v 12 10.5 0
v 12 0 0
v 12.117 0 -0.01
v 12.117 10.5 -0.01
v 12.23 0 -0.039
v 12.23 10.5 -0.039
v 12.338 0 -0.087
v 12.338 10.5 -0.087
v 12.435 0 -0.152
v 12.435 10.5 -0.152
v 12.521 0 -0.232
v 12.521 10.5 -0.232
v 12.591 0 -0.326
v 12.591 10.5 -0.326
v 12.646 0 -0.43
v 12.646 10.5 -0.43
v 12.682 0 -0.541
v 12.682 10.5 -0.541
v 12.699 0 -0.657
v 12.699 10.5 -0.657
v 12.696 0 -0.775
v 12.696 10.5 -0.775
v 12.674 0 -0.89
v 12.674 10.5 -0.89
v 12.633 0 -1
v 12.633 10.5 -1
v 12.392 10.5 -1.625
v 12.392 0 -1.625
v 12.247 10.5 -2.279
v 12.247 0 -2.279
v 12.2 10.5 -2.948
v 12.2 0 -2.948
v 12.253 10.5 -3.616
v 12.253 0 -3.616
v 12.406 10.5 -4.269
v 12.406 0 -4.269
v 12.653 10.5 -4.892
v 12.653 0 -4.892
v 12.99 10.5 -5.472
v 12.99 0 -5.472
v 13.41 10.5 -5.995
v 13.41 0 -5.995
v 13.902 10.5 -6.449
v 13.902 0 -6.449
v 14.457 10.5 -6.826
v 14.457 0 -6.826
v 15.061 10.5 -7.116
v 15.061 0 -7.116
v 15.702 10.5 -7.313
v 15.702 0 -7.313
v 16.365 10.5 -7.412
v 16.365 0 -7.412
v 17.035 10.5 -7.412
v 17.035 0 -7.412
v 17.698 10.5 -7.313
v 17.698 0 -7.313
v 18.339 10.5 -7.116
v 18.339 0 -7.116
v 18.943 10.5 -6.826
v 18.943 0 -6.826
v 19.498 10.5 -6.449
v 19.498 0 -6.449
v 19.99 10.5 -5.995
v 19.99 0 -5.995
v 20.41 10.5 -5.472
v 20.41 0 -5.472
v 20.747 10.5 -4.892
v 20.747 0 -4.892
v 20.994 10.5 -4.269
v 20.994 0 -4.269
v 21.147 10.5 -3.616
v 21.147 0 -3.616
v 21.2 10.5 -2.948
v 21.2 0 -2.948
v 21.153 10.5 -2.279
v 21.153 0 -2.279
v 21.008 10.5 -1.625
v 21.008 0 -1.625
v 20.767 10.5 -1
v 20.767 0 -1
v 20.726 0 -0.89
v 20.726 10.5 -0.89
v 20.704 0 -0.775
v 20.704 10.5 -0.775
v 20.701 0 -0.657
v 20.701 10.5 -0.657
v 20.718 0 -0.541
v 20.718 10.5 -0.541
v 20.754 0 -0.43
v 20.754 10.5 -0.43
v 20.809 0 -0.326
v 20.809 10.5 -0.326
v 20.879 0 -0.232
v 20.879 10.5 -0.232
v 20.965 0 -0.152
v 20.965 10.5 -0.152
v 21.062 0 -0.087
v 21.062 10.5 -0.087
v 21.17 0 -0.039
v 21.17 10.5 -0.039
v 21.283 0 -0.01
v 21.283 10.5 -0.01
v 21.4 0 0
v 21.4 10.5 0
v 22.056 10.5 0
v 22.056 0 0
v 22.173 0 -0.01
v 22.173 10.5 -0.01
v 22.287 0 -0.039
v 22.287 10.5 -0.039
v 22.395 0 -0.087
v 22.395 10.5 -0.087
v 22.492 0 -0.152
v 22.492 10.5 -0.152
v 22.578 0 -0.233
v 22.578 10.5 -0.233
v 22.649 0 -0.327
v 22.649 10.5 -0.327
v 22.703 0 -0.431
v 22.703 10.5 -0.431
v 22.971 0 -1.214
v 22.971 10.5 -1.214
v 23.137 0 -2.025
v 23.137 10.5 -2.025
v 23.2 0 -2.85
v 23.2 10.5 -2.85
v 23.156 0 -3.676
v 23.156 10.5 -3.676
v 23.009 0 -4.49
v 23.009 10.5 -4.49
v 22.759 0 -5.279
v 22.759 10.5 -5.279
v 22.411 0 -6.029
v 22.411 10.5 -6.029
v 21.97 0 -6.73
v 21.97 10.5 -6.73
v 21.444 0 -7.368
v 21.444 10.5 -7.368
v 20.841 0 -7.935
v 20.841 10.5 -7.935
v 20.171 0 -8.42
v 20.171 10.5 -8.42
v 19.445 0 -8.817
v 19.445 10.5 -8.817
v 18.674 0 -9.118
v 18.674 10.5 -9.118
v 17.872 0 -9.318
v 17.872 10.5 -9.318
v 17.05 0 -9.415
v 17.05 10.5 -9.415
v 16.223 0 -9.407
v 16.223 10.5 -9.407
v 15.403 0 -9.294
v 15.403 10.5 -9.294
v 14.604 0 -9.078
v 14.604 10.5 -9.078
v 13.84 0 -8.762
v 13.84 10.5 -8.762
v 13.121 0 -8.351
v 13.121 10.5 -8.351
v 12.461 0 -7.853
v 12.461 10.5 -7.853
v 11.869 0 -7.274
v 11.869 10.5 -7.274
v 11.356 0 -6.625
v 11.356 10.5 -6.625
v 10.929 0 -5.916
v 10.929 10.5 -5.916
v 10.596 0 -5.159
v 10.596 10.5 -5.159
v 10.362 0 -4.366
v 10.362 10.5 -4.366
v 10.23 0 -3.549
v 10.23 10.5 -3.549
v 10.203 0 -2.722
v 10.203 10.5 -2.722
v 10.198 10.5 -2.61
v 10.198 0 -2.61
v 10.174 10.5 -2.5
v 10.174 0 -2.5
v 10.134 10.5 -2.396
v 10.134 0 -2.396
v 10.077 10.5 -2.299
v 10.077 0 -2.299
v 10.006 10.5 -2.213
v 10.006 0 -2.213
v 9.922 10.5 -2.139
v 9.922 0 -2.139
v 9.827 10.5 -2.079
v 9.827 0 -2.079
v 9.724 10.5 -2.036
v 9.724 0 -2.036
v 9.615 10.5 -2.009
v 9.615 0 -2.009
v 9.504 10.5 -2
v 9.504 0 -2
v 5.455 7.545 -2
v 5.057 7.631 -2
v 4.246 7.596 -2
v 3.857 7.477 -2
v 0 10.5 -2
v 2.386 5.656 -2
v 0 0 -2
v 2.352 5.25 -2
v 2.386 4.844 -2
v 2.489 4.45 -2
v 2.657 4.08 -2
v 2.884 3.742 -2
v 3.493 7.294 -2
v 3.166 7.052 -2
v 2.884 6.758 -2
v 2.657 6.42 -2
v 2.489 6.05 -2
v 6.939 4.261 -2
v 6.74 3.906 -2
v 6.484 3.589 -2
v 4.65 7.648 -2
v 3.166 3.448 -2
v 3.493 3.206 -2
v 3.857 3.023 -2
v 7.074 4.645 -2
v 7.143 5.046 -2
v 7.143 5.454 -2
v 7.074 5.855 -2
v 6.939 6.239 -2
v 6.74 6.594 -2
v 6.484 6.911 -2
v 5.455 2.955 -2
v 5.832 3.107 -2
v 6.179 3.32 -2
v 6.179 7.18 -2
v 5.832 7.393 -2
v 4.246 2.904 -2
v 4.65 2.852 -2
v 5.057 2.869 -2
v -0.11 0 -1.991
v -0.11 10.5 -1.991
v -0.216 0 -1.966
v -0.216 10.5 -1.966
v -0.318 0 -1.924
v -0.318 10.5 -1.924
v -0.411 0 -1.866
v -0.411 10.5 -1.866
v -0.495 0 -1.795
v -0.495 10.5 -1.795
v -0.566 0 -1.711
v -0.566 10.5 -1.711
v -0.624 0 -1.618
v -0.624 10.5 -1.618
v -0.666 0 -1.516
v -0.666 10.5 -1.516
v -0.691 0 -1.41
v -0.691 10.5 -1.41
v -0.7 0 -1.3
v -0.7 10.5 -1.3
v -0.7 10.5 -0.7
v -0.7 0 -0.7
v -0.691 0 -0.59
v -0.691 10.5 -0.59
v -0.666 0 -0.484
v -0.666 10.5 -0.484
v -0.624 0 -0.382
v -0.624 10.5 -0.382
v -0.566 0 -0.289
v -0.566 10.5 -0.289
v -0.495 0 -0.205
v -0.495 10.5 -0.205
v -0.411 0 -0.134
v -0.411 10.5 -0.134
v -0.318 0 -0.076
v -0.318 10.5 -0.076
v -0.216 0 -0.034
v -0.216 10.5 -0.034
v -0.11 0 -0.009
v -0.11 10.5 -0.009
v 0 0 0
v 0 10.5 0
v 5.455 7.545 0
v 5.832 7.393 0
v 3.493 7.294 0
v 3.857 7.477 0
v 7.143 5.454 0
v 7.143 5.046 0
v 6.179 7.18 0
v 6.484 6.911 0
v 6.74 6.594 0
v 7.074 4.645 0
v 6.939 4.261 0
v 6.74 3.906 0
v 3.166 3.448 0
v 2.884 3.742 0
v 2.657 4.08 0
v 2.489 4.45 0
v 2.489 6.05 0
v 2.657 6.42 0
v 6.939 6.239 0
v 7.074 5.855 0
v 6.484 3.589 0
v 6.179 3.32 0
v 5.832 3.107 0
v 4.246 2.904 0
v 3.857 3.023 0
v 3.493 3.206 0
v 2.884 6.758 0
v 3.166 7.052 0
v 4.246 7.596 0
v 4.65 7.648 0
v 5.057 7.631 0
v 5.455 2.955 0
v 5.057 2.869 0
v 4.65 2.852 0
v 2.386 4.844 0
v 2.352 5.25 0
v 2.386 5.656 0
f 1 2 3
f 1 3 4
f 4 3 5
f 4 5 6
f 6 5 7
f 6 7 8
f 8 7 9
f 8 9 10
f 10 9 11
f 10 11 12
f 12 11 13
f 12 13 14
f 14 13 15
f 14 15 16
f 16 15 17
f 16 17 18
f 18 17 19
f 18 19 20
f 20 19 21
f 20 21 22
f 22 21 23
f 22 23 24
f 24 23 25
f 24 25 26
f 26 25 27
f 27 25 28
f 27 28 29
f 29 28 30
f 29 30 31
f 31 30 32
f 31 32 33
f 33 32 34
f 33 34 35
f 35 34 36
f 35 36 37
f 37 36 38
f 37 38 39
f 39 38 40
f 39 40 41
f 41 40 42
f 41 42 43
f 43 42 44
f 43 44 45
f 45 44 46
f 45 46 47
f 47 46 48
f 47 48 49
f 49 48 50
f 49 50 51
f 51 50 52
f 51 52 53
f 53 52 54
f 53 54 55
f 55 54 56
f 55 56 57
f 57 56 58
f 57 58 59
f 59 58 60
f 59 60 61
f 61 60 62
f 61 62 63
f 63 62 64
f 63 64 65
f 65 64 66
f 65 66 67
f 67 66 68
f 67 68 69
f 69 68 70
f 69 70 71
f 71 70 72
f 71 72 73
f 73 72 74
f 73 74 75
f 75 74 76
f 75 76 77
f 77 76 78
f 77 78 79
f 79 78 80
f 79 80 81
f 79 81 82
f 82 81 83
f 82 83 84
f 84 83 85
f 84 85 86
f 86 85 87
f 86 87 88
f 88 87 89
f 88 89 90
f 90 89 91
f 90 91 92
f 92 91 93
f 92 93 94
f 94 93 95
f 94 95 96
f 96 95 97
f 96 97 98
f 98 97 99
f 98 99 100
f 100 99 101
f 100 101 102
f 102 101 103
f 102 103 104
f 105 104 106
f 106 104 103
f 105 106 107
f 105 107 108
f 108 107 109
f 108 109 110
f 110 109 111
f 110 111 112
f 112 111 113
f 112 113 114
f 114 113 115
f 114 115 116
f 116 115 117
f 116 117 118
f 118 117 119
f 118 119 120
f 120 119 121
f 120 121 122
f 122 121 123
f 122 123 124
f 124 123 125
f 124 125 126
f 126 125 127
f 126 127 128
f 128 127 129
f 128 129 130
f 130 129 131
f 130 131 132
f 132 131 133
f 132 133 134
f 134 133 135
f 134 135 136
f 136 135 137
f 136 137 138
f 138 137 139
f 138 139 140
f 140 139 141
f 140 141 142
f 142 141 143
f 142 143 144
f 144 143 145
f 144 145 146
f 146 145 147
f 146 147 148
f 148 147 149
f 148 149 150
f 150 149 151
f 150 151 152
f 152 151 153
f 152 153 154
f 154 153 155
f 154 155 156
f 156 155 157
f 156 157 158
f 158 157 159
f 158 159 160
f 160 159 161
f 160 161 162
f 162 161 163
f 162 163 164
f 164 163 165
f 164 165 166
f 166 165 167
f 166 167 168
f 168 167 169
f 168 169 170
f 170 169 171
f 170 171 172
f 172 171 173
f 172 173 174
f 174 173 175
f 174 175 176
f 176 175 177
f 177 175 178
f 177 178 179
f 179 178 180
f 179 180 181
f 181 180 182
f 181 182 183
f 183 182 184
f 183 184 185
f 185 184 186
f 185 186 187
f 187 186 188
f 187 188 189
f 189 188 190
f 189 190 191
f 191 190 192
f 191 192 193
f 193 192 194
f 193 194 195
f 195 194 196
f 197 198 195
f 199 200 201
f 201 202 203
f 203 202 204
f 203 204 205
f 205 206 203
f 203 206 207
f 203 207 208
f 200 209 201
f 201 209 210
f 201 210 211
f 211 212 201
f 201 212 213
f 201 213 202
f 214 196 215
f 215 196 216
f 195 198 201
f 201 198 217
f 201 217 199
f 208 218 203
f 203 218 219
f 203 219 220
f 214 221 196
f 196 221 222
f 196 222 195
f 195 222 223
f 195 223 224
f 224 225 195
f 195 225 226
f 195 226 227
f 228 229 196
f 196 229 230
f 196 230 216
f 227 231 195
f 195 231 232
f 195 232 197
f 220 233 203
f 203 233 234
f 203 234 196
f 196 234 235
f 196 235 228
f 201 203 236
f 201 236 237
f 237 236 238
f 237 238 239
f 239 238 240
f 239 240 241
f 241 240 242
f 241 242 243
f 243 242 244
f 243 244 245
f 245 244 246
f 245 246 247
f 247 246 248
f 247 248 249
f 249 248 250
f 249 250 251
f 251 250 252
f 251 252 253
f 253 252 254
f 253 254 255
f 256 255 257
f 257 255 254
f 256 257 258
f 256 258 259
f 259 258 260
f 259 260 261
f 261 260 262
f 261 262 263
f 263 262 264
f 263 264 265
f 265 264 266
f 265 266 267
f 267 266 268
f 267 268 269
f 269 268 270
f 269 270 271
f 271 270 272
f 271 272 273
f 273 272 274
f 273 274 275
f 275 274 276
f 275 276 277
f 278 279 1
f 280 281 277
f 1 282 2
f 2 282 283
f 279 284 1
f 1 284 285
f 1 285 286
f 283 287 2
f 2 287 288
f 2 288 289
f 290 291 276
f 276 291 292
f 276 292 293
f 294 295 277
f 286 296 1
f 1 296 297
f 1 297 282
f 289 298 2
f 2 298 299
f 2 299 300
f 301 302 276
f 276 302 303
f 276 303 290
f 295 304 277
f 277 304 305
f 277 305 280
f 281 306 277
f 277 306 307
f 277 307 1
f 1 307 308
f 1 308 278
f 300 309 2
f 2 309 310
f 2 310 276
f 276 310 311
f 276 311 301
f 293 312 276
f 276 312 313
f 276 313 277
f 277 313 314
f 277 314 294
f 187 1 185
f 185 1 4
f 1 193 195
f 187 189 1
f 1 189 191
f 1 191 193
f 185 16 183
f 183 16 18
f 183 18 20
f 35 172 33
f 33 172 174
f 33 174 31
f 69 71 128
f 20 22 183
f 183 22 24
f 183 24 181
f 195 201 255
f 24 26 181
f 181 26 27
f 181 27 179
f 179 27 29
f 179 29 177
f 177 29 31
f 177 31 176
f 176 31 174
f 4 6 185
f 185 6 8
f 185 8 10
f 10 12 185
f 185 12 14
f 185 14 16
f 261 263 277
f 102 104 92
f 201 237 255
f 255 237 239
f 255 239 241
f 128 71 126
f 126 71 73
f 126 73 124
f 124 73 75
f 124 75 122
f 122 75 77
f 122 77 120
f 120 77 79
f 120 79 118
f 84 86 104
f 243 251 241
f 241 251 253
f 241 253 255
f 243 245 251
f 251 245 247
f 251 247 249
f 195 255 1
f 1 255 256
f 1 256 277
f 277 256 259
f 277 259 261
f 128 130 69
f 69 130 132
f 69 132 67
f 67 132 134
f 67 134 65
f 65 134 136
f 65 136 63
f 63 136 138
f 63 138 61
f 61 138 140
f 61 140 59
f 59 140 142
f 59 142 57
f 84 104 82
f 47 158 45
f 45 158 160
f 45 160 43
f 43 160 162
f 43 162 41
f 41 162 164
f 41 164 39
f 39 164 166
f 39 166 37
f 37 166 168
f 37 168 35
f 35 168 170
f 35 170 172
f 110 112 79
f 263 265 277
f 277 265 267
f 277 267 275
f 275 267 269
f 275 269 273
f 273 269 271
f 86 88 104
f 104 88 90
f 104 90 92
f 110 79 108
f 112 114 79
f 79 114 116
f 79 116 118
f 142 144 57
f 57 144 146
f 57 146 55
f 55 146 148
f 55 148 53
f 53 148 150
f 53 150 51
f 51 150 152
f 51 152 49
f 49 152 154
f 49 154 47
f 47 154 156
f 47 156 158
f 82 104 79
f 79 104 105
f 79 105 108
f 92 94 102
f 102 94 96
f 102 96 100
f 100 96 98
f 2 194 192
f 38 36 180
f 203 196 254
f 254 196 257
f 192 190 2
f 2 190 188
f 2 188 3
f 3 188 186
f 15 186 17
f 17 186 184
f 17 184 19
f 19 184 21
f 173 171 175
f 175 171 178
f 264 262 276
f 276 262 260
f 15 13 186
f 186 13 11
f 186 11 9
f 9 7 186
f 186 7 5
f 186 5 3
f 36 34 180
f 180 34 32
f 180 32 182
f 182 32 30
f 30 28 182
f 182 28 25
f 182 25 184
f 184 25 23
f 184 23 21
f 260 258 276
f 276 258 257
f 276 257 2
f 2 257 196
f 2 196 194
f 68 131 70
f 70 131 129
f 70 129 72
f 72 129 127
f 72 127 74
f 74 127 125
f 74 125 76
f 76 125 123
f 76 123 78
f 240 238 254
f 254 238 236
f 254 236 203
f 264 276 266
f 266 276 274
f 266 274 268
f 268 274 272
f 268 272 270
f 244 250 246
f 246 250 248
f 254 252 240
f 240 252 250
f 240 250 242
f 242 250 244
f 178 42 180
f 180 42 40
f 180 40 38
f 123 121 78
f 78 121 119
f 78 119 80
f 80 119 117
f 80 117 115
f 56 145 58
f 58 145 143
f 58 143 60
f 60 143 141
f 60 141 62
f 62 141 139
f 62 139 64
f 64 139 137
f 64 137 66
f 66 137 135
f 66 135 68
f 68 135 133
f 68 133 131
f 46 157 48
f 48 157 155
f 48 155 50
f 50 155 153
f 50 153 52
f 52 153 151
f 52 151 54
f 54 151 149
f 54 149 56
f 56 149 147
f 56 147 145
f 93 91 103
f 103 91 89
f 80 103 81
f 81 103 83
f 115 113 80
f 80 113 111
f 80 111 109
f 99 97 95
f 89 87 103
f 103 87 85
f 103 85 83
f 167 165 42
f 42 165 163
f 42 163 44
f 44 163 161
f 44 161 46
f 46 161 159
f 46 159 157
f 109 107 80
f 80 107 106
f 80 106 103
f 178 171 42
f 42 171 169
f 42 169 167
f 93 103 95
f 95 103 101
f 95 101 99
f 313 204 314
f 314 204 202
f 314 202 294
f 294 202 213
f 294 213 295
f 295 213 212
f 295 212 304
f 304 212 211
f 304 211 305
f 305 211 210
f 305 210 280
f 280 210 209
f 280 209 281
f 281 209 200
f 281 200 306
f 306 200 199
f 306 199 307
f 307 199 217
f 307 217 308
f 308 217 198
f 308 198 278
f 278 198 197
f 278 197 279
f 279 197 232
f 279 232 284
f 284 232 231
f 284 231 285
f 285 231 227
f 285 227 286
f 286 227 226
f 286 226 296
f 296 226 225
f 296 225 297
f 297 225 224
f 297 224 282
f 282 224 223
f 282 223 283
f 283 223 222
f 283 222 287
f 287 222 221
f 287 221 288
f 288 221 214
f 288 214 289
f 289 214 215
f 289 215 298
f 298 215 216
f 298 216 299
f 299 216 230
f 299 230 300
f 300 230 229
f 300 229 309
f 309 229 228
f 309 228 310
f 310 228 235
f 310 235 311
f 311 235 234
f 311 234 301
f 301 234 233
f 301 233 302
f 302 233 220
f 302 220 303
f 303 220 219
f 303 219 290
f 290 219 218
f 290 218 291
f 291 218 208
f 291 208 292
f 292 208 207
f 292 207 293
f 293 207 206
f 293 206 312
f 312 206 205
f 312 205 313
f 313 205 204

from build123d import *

# Parameters (mm, degrees)
BOSS_EXTRU_1_DEPTH = 10.5
D_GAGEMENT_M41_D   = 4.8


with BuildPart() as part:
    # Esquisse1 → Boss.-Extru.1 (new body)
    with BuildSketch(Plane(origin=(0, 0, 0), x_dir=(1, 0, 0), z_dir=(0, 1, 0))):
        with BuildLine():
            Line((0, 0), (12, 0))
            ThreePointArc((12, 0), (12.591460154, 0.325600632), (12.632692308, 0.999500324))
            ThreePointArc((12.632692308, 0.999500324), (16.7, 7.424859546), (20.767307692, 0.999500324))
            ThreePointArc((20.767307692, 0.999500324), (20.808539846, 0.325600632), (21.4, 0))
            Line((21.4, 0), (22.056304696, 0))
            ThreePointArc((22.056304696, 0), (22.444916153, 0.117779135), (22.702755263, 0.431482469))
            ThreePointArc((22.702755263, 0.431482469), (17.871531541, 9.318412068), (10.20317064, 2.721861345))
            ThreePointArc((10.20317064, 2.721861345), (10.006156571, 2.212815713), (9.503512094, 2))
            Line((9.503512094, 2), (0, 2))
            ThreePointArc((0, 2), (-0.494974747, 1.794974747), (-0.7, 1.3))
            Line((-0.7, 1.3), (-0.7, 0.7))
            ThreePointArc((-0.7, 0.7), (-0.494974747, 0.205025253), (0, 0))
        make_face()
    extrude(amount=BOSS_EXTRU_1_DEPTH)

    # Dégagement M41 (through all)
    with Locations(Plane(origin=(0, 0, -2), x_dir=(-1, 0, 0), z_dir=(0, 0, -1))):
        with Locations((-4.751756047, 5.25)):
            Hole(D_GAGEMENT_M41_D / 2)


solid = part.part
